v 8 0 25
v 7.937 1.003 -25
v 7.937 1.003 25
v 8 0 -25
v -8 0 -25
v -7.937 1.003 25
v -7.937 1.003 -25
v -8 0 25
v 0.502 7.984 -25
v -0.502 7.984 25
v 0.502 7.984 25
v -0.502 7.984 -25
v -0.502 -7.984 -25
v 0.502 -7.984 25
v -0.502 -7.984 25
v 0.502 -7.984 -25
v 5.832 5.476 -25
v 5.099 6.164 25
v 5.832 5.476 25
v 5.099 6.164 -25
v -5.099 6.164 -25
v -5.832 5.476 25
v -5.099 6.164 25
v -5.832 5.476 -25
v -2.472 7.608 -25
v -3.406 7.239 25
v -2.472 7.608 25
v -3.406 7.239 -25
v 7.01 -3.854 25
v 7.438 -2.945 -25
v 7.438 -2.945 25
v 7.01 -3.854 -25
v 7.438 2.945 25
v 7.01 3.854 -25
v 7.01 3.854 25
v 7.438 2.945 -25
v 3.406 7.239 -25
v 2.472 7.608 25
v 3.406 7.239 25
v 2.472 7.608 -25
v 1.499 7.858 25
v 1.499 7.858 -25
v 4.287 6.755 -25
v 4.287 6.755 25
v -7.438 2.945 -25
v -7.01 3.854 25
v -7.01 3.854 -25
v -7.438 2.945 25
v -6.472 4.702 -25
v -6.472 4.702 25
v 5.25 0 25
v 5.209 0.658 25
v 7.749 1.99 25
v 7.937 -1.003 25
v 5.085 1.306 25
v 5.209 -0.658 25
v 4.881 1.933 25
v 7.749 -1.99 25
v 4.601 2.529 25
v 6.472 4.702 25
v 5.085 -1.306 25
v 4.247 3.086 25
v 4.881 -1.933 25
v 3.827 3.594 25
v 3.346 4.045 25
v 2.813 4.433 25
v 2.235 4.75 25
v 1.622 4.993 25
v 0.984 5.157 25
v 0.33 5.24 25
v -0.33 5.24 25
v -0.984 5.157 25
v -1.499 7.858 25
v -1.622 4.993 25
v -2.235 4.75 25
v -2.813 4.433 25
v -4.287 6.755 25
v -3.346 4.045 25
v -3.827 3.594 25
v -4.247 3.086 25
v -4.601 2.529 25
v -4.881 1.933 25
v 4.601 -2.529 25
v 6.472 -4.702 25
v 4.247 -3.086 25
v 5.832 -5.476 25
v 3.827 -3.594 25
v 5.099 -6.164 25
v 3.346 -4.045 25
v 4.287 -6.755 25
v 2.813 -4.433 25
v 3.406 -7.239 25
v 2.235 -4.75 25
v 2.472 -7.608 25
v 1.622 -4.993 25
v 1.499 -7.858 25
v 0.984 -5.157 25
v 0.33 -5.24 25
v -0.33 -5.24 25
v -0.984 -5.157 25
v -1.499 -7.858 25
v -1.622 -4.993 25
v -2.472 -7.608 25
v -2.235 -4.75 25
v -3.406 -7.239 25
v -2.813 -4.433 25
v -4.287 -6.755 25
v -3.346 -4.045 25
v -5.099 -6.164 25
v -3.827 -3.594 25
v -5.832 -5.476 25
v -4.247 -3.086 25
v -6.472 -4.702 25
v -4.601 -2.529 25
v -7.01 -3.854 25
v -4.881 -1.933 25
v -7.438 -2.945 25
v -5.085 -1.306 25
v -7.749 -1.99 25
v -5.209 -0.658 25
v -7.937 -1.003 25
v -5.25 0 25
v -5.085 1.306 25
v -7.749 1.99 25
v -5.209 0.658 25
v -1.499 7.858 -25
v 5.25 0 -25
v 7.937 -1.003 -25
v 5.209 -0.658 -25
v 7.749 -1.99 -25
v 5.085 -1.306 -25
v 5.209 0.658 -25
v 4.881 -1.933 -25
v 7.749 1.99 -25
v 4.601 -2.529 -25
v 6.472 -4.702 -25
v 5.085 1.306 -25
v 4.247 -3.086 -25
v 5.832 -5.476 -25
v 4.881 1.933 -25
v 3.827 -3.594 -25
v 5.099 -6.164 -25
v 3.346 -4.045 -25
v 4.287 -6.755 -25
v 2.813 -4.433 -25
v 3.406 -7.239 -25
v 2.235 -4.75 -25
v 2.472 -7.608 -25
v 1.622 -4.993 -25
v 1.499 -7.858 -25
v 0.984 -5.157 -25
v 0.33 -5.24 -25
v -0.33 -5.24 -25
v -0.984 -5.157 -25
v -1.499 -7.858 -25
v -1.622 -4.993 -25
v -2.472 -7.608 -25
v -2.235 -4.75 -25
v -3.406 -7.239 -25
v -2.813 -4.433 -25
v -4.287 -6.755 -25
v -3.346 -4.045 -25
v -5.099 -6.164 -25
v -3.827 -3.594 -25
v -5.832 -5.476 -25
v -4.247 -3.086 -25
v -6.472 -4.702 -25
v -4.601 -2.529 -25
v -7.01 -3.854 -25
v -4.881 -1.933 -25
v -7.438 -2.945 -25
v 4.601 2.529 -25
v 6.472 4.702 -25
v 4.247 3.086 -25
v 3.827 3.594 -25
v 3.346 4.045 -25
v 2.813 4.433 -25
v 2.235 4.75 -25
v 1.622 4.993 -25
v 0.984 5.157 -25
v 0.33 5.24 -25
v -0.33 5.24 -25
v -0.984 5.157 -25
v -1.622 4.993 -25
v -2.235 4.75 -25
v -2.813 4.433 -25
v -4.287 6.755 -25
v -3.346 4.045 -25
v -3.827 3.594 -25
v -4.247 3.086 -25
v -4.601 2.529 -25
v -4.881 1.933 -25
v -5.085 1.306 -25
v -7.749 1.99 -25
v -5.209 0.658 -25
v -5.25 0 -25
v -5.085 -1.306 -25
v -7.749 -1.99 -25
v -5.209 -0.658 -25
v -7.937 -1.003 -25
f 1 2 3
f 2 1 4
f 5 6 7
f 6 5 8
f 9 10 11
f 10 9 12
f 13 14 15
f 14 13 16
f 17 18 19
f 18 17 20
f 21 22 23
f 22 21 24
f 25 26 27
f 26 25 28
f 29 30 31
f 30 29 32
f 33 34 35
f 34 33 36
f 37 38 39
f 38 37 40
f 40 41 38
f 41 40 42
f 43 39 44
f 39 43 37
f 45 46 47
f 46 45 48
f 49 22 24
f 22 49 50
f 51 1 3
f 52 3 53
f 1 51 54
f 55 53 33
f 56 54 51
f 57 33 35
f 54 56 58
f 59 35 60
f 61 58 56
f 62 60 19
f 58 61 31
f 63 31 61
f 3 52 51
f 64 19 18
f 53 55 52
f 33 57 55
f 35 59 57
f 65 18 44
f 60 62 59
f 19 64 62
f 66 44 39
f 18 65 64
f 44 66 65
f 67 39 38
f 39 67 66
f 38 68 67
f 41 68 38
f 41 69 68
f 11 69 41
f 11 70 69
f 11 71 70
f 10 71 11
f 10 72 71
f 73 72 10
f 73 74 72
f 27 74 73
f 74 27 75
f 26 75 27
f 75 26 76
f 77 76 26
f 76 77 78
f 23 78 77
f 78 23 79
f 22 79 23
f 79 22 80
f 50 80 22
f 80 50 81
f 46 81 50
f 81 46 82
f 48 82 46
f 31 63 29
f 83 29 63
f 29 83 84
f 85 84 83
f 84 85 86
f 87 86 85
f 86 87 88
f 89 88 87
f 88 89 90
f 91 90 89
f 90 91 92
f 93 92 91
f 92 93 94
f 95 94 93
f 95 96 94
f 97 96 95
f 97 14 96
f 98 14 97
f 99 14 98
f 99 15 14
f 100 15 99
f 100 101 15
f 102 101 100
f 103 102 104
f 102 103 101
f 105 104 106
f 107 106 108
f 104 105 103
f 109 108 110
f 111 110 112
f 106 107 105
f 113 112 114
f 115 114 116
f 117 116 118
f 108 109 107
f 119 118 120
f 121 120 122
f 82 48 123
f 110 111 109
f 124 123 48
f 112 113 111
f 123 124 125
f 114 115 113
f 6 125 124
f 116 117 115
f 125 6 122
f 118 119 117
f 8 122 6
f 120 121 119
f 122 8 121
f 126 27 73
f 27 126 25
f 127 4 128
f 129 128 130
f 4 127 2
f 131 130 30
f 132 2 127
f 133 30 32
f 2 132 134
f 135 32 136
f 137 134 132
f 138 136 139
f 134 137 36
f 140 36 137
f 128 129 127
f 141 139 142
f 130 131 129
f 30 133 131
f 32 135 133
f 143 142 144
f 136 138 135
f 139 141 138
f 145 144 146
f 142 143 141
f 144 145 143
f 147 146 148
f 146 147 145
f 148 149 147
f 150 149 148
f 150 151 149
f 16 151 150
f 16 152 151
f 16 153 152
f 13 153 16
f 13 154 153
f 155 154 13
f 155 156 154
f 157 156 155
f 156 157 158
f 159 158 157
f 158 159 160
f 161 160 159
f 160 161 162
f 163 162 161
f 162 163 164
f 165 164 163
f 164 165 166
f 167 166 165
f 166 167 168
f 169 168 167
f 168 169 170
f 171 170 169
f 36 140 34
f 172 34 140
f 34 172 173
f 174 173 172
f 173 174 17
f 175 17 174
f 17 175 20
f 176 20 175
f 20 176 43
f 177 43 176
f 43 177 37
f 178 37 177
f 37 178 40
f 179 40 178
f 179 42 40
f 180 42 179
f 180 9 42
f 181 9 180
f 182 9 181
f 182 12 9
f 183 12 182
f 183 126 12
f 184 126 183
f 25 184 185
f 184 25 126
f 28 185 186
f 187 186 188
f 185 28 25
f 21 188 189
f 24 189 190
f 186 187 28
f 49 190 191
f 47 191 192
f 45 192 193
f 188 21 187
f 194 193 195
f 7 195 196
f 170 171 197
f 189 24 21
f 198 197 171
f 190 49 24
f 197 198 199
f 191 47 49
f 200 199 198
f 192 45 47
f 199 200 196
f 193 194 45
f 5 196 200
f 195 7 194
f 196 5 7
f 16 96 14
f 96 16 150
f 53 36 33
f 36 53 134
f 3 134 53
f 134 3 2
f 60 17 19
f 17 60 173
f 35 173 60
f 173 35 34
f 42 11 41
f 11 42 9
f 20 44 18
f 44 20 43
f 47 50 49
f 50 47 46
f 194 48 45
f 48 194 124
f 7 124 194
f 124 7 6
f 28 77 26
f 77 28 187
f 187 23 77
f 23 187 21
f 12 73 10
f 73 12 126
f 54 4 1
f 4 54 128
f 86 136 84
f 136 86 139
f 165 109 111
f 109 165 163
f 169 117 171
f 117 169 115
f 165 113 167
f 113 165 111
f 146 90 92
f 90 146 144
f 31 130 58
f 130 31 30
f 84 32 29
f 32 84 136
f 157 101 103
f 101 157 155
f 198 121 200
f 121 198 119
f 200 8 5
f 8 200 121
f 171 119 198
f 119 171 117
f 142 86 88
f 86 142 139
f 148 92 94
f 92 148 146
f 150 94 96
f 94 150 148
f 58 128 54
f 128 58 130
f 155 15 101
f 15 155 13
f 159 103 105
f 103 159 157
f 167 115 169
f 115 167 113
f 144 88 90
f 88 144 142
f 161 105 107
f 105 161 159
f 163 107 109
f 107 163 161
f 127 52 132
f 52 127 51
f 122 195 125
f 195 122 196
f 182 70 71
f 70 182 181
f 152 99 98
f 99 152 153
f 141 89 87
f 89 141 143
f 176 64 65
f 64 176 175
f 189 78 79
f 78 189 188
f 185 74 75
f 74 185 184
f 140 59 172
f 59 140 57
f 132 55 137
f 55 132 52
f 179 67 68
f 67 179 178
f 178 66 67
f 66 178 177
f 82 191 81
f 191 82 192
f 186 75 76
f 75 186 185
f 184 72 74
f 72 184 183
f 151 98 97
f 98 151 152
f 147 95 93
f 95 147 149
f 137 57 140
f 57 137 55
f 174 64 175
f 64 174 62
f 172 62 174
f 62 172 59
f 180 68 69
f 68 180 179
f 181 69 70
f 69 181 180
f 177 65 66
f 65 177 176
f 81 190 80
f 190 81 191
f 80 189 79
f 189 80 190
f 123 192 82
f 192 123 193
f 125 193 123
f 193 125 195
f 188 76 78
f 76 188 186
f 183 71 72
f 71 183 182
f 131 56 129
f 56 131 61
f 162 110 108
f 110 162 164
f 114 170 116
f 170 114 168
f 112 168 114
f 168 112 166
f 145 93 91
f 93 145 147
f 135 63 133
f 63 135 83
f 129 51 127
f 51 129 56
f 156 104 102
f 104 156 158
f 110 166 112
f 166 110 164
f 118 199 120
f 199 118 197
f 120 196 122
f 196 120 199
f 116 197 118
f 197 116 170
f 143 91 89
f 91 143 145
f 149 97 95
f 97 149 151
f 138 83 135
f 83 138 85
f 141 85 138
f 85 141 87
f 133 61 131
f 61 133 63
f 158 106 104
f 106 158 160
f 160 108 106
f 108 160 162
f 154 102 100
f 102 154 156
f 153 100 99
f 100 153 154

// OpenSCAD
$fn = 50;


difference() {
	union() {
		translate(v = [0, 0, -25.0000000000]) {
			cylinder(h = 50, r = 8.0000000000);
		}
	}
	union() {
		translate(v = [0, 0, -100.0000000000]) {
			cylinder(h = 200, r = 5.2500000000);
		}
	}
}
